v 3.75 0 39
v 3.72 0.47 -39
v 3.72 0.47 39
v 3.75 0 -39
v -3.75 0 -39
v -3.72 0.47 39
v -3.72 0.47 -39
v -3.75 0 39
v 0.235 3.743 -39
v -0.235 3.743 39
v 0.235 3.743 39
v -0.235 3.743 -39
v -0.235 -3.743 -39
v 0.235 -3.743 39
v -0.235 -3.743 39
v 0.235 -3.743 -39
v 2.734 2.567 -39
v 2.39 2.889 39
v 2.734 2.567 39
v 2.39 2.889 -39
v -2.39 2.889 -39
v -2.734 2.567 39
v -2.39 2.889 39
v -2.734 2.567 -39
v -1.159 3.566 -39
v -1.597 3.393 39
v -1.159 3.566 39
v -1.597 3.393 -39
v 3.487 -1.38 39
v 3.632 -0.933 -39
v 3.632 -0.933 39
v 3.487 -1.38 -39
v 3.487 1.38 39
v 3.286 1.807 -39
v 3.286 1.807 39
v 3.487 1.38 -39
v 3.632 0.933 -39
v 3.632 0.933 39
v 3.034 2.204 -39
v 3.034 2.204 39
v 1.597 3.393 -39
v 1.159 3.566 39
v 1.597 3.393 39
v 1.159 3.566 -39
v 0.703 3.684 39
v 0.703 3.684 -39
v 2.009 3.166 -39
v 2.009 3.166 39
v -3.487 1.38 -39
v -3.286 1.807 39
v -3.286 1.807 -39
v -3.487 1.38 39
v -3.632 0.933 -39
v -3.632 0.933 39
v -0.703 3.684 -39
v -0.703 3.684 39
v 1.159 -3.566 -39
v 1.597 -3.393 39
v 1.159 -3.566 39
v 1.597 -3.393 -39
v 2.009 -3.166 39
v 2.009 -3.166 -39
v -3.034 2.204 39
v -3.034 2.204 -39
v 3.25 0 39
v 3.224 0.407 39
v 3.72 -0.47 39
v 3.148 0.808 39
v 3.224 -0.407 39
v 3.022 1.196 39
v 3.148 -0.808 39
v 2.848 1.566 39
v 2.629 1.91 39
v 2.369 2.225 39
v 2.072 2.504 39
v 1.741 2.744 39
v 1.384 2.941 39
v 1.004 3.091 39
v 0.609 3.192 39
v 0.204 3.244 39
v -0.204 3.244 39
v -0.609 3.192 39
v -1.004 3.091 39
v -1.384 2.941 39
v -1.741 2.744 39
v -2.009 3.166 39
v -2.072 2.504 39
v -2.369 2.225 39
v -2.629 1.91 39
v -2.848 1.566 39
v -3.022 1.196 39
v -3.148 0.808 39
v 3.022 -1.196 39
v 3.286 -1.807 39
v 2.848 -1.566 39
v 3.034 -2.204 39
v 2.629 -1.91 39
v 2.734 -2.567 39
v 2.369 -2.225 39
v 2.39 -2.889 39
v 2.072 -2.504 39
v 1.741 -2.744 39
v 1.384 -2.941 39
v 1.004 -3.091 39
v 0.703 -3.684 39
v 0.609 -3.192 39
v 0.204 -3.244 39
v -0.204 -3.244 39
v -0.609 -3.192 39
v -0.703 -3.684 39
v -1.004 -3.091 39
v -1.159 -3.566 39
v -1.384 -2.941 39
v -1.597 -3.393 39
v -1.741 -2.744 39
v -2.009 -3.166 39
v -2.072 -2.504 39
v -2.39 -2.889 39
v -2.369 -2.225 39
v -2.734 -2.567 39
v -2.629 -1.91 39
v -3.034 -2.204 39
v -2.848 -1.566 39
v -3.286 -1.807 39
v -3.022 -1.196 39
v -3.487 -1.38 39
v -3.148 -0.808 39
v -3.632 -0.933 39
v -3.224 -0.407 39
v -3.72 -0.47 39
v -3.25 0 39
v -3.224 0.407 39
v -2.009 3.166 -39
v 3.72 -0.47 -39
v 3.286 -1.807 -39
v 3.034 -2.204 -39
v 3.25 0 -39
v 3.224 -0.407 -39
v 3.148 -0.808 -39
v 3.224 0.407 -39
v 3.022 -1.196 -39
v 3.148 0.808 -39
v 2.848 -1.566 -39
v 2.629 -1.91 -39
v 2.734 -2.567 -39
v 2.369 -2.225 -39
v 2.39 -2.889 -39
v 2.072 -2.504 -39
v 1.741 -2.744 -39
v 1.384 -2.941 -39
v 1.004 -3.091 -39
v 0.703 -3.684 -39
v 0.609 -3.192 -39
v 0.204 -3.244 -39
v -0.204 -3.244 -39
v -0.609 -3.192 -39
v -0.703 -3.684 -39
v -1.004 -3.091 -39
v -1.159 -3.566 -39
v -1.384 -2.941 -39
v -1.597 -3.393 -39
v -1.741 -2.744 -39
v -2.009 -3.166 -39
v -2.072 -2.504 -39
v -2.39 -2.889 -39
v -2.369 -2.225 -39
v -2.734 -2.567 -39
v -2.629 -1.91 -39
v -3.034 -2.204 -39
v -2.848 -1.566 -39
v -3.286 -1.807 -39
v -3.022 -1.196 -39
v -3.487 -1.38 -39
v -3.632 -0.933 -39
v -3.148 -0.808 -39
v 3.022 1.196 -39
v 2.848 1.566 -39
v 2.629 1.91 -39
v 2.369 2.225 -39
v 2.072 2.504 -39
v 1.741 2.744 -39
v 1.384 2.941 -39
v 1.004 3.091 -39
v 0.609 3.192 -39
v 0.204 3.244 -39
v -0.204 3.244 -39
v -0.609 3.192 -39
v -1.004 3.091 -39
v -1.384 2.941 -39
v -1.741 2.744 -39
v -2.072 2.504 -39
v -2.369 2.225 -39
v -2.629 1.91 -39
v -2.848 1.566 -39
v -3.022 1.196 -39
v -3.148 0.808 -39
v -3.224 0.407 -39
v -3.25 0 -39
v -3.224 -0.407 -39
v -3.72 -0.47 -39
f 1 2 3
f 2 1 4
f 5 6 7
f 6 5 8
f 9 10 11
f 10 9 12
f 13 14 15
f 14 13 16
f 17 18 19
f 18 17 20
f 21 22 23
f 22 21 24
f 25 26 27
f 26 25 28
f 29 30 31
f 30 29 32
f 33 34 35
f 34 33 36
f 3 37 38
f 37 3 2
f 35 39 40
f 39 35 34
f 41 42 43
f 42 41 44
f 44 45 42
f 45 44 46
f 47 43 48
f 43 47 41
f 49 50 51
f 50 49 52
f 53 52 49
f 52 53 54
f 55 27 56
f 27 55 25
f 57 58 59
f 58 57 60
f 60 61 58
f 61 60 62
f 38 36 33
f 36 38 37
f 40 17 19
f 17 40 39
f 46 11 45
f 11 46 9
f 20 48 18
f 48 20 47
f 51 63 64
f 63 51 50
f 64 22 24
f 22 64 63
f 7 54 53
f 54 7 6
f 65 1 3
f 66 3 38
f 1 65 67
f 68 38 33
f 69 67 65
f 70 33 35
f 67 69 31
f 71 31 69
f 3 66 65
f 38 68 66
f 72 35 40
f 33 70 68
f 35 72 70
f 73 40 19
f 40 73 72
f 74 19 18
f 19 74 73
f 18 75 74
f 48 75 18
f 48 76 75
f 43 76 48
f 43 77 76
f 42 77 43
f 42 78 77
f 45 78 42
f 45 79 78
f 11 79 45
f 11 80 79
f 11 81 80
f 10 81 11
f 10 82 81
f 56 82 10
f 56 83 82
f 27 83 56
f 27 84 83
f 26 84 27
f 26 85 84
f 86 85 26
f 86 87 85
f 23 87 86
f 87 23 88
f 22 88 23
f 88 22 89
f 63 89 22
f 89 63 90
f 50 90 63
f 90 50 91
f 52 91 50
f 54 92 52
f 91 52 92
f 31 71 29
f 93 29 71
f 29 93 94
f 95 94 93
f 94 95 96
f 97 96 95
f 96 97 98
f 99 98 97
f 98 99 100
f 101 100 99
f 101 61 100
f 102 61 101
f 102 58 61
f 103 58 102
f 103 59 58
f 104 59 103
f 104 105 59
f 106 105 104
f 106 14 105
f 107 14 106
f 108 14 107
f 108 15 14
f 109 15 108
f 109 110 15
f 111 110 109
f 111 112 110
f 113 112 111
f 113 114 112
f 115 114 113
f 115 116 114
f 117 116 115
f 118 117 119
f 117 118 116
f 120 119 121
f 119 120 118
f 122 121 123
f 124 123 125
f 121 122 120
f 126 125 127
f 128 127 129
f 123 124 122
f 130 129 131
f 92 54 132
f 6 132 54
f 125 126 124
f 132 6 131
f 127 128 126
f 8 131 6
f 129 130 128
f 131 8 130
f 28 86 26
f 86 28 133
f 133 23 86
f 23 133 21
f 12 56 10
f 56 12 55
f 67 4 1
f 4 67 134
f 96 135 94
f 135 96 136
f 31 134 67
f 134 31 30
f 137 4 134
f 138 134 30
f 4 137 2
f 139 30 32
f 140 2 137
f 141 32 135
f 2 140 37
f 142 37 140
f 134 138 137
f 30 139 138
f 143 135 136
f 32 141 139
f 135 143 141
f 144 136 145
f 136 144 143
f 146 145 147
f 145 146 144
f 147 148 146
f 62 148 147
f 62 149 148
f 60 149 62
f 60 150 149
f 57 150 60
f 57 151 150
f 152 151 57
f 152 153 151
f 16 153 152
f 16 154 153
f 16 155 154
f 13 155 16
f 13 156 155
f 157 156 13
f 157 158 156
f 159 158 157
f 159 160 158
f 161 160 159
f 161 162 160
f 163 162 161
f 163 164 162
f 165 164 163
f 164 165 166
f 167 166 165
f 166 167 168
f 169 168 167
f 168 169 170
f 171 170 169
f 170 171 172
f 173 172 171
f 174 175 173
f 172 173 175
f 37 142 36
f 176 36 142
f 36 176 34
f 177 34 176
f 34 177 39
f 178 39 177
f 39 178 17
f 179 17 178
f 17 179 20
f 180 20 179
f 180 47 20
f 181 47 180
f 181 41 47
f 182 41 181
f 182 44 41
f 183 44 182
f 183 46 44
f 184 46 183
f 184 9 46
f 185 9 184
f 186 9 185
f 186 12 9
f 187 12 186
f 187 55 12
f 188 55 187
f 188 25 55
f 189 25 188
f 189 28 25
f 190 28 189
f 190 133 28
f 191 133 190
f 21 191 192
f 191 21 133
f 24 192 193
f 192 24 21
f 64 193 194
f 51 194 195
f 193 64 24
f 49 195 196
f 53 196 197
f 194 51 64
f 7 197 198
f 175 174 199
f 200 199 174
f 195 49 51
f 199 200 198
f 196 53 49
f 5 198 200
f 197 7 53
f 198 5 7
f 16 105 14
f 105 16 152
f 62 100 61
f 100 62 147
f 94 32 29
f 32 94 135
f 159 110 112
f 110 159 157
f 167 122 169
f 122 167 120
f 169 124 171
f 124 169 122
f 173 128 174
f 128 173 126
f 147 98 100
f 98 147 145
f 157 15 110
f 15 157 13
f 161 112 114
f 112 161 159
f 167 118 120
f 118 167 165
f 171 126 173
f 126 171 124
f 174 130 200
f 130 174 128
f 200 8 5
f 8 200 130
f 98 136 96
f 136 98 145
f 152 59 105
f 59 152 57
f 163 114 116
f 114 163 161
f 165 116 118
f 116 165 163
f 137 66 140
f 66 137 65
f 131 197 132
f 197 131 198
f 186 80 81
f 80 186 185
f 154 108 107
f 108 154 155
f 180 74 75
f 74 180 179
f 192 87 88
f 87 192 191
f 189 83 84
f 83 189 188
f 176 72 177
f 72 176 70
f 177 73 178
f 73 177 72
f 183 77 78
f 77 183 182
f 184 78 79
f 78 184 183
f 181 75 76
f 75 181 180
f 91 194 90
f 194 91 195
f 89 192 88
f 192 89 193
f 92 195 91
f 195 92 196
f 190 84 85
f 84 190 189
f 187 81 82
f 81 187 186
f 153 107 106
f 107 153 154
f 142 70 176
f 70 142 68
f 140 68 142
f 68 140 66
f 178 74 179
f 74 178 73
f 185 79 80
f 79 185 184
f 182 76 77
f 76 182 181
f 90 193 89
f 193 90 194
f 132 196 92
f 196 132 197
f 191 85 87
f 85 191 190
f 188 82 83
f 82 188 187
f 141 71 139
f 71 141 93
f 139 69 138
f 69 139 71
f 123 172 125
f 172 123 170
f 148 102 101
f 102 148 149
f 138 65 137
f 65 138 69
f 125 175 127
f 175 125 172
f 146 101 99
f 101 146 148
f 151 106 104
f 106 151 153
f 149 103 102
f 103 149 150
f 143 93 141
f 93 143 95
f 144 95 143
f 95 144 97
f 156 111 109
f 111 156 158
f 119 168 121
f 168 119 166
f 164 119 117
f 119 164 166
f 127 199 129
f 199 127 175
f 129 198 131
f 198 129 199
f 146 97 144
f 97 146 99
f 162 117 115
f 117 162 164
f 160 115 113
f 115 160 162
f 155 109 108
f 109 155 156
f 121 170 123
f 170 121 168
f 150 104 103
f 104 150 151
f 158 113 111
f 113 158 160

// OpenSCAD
$fn = 50;


difference() {
	union() {
		translate(v = [0, 0, -39.0000000000]) {
			cylinder(h = 78, r = 3.7500000000);
		}
	}
	union() {
		translate(v = [0, 0, -100.0000000000]) {
			cylinder(h = 200, r = 3.2500000000);
		}
	}
}
